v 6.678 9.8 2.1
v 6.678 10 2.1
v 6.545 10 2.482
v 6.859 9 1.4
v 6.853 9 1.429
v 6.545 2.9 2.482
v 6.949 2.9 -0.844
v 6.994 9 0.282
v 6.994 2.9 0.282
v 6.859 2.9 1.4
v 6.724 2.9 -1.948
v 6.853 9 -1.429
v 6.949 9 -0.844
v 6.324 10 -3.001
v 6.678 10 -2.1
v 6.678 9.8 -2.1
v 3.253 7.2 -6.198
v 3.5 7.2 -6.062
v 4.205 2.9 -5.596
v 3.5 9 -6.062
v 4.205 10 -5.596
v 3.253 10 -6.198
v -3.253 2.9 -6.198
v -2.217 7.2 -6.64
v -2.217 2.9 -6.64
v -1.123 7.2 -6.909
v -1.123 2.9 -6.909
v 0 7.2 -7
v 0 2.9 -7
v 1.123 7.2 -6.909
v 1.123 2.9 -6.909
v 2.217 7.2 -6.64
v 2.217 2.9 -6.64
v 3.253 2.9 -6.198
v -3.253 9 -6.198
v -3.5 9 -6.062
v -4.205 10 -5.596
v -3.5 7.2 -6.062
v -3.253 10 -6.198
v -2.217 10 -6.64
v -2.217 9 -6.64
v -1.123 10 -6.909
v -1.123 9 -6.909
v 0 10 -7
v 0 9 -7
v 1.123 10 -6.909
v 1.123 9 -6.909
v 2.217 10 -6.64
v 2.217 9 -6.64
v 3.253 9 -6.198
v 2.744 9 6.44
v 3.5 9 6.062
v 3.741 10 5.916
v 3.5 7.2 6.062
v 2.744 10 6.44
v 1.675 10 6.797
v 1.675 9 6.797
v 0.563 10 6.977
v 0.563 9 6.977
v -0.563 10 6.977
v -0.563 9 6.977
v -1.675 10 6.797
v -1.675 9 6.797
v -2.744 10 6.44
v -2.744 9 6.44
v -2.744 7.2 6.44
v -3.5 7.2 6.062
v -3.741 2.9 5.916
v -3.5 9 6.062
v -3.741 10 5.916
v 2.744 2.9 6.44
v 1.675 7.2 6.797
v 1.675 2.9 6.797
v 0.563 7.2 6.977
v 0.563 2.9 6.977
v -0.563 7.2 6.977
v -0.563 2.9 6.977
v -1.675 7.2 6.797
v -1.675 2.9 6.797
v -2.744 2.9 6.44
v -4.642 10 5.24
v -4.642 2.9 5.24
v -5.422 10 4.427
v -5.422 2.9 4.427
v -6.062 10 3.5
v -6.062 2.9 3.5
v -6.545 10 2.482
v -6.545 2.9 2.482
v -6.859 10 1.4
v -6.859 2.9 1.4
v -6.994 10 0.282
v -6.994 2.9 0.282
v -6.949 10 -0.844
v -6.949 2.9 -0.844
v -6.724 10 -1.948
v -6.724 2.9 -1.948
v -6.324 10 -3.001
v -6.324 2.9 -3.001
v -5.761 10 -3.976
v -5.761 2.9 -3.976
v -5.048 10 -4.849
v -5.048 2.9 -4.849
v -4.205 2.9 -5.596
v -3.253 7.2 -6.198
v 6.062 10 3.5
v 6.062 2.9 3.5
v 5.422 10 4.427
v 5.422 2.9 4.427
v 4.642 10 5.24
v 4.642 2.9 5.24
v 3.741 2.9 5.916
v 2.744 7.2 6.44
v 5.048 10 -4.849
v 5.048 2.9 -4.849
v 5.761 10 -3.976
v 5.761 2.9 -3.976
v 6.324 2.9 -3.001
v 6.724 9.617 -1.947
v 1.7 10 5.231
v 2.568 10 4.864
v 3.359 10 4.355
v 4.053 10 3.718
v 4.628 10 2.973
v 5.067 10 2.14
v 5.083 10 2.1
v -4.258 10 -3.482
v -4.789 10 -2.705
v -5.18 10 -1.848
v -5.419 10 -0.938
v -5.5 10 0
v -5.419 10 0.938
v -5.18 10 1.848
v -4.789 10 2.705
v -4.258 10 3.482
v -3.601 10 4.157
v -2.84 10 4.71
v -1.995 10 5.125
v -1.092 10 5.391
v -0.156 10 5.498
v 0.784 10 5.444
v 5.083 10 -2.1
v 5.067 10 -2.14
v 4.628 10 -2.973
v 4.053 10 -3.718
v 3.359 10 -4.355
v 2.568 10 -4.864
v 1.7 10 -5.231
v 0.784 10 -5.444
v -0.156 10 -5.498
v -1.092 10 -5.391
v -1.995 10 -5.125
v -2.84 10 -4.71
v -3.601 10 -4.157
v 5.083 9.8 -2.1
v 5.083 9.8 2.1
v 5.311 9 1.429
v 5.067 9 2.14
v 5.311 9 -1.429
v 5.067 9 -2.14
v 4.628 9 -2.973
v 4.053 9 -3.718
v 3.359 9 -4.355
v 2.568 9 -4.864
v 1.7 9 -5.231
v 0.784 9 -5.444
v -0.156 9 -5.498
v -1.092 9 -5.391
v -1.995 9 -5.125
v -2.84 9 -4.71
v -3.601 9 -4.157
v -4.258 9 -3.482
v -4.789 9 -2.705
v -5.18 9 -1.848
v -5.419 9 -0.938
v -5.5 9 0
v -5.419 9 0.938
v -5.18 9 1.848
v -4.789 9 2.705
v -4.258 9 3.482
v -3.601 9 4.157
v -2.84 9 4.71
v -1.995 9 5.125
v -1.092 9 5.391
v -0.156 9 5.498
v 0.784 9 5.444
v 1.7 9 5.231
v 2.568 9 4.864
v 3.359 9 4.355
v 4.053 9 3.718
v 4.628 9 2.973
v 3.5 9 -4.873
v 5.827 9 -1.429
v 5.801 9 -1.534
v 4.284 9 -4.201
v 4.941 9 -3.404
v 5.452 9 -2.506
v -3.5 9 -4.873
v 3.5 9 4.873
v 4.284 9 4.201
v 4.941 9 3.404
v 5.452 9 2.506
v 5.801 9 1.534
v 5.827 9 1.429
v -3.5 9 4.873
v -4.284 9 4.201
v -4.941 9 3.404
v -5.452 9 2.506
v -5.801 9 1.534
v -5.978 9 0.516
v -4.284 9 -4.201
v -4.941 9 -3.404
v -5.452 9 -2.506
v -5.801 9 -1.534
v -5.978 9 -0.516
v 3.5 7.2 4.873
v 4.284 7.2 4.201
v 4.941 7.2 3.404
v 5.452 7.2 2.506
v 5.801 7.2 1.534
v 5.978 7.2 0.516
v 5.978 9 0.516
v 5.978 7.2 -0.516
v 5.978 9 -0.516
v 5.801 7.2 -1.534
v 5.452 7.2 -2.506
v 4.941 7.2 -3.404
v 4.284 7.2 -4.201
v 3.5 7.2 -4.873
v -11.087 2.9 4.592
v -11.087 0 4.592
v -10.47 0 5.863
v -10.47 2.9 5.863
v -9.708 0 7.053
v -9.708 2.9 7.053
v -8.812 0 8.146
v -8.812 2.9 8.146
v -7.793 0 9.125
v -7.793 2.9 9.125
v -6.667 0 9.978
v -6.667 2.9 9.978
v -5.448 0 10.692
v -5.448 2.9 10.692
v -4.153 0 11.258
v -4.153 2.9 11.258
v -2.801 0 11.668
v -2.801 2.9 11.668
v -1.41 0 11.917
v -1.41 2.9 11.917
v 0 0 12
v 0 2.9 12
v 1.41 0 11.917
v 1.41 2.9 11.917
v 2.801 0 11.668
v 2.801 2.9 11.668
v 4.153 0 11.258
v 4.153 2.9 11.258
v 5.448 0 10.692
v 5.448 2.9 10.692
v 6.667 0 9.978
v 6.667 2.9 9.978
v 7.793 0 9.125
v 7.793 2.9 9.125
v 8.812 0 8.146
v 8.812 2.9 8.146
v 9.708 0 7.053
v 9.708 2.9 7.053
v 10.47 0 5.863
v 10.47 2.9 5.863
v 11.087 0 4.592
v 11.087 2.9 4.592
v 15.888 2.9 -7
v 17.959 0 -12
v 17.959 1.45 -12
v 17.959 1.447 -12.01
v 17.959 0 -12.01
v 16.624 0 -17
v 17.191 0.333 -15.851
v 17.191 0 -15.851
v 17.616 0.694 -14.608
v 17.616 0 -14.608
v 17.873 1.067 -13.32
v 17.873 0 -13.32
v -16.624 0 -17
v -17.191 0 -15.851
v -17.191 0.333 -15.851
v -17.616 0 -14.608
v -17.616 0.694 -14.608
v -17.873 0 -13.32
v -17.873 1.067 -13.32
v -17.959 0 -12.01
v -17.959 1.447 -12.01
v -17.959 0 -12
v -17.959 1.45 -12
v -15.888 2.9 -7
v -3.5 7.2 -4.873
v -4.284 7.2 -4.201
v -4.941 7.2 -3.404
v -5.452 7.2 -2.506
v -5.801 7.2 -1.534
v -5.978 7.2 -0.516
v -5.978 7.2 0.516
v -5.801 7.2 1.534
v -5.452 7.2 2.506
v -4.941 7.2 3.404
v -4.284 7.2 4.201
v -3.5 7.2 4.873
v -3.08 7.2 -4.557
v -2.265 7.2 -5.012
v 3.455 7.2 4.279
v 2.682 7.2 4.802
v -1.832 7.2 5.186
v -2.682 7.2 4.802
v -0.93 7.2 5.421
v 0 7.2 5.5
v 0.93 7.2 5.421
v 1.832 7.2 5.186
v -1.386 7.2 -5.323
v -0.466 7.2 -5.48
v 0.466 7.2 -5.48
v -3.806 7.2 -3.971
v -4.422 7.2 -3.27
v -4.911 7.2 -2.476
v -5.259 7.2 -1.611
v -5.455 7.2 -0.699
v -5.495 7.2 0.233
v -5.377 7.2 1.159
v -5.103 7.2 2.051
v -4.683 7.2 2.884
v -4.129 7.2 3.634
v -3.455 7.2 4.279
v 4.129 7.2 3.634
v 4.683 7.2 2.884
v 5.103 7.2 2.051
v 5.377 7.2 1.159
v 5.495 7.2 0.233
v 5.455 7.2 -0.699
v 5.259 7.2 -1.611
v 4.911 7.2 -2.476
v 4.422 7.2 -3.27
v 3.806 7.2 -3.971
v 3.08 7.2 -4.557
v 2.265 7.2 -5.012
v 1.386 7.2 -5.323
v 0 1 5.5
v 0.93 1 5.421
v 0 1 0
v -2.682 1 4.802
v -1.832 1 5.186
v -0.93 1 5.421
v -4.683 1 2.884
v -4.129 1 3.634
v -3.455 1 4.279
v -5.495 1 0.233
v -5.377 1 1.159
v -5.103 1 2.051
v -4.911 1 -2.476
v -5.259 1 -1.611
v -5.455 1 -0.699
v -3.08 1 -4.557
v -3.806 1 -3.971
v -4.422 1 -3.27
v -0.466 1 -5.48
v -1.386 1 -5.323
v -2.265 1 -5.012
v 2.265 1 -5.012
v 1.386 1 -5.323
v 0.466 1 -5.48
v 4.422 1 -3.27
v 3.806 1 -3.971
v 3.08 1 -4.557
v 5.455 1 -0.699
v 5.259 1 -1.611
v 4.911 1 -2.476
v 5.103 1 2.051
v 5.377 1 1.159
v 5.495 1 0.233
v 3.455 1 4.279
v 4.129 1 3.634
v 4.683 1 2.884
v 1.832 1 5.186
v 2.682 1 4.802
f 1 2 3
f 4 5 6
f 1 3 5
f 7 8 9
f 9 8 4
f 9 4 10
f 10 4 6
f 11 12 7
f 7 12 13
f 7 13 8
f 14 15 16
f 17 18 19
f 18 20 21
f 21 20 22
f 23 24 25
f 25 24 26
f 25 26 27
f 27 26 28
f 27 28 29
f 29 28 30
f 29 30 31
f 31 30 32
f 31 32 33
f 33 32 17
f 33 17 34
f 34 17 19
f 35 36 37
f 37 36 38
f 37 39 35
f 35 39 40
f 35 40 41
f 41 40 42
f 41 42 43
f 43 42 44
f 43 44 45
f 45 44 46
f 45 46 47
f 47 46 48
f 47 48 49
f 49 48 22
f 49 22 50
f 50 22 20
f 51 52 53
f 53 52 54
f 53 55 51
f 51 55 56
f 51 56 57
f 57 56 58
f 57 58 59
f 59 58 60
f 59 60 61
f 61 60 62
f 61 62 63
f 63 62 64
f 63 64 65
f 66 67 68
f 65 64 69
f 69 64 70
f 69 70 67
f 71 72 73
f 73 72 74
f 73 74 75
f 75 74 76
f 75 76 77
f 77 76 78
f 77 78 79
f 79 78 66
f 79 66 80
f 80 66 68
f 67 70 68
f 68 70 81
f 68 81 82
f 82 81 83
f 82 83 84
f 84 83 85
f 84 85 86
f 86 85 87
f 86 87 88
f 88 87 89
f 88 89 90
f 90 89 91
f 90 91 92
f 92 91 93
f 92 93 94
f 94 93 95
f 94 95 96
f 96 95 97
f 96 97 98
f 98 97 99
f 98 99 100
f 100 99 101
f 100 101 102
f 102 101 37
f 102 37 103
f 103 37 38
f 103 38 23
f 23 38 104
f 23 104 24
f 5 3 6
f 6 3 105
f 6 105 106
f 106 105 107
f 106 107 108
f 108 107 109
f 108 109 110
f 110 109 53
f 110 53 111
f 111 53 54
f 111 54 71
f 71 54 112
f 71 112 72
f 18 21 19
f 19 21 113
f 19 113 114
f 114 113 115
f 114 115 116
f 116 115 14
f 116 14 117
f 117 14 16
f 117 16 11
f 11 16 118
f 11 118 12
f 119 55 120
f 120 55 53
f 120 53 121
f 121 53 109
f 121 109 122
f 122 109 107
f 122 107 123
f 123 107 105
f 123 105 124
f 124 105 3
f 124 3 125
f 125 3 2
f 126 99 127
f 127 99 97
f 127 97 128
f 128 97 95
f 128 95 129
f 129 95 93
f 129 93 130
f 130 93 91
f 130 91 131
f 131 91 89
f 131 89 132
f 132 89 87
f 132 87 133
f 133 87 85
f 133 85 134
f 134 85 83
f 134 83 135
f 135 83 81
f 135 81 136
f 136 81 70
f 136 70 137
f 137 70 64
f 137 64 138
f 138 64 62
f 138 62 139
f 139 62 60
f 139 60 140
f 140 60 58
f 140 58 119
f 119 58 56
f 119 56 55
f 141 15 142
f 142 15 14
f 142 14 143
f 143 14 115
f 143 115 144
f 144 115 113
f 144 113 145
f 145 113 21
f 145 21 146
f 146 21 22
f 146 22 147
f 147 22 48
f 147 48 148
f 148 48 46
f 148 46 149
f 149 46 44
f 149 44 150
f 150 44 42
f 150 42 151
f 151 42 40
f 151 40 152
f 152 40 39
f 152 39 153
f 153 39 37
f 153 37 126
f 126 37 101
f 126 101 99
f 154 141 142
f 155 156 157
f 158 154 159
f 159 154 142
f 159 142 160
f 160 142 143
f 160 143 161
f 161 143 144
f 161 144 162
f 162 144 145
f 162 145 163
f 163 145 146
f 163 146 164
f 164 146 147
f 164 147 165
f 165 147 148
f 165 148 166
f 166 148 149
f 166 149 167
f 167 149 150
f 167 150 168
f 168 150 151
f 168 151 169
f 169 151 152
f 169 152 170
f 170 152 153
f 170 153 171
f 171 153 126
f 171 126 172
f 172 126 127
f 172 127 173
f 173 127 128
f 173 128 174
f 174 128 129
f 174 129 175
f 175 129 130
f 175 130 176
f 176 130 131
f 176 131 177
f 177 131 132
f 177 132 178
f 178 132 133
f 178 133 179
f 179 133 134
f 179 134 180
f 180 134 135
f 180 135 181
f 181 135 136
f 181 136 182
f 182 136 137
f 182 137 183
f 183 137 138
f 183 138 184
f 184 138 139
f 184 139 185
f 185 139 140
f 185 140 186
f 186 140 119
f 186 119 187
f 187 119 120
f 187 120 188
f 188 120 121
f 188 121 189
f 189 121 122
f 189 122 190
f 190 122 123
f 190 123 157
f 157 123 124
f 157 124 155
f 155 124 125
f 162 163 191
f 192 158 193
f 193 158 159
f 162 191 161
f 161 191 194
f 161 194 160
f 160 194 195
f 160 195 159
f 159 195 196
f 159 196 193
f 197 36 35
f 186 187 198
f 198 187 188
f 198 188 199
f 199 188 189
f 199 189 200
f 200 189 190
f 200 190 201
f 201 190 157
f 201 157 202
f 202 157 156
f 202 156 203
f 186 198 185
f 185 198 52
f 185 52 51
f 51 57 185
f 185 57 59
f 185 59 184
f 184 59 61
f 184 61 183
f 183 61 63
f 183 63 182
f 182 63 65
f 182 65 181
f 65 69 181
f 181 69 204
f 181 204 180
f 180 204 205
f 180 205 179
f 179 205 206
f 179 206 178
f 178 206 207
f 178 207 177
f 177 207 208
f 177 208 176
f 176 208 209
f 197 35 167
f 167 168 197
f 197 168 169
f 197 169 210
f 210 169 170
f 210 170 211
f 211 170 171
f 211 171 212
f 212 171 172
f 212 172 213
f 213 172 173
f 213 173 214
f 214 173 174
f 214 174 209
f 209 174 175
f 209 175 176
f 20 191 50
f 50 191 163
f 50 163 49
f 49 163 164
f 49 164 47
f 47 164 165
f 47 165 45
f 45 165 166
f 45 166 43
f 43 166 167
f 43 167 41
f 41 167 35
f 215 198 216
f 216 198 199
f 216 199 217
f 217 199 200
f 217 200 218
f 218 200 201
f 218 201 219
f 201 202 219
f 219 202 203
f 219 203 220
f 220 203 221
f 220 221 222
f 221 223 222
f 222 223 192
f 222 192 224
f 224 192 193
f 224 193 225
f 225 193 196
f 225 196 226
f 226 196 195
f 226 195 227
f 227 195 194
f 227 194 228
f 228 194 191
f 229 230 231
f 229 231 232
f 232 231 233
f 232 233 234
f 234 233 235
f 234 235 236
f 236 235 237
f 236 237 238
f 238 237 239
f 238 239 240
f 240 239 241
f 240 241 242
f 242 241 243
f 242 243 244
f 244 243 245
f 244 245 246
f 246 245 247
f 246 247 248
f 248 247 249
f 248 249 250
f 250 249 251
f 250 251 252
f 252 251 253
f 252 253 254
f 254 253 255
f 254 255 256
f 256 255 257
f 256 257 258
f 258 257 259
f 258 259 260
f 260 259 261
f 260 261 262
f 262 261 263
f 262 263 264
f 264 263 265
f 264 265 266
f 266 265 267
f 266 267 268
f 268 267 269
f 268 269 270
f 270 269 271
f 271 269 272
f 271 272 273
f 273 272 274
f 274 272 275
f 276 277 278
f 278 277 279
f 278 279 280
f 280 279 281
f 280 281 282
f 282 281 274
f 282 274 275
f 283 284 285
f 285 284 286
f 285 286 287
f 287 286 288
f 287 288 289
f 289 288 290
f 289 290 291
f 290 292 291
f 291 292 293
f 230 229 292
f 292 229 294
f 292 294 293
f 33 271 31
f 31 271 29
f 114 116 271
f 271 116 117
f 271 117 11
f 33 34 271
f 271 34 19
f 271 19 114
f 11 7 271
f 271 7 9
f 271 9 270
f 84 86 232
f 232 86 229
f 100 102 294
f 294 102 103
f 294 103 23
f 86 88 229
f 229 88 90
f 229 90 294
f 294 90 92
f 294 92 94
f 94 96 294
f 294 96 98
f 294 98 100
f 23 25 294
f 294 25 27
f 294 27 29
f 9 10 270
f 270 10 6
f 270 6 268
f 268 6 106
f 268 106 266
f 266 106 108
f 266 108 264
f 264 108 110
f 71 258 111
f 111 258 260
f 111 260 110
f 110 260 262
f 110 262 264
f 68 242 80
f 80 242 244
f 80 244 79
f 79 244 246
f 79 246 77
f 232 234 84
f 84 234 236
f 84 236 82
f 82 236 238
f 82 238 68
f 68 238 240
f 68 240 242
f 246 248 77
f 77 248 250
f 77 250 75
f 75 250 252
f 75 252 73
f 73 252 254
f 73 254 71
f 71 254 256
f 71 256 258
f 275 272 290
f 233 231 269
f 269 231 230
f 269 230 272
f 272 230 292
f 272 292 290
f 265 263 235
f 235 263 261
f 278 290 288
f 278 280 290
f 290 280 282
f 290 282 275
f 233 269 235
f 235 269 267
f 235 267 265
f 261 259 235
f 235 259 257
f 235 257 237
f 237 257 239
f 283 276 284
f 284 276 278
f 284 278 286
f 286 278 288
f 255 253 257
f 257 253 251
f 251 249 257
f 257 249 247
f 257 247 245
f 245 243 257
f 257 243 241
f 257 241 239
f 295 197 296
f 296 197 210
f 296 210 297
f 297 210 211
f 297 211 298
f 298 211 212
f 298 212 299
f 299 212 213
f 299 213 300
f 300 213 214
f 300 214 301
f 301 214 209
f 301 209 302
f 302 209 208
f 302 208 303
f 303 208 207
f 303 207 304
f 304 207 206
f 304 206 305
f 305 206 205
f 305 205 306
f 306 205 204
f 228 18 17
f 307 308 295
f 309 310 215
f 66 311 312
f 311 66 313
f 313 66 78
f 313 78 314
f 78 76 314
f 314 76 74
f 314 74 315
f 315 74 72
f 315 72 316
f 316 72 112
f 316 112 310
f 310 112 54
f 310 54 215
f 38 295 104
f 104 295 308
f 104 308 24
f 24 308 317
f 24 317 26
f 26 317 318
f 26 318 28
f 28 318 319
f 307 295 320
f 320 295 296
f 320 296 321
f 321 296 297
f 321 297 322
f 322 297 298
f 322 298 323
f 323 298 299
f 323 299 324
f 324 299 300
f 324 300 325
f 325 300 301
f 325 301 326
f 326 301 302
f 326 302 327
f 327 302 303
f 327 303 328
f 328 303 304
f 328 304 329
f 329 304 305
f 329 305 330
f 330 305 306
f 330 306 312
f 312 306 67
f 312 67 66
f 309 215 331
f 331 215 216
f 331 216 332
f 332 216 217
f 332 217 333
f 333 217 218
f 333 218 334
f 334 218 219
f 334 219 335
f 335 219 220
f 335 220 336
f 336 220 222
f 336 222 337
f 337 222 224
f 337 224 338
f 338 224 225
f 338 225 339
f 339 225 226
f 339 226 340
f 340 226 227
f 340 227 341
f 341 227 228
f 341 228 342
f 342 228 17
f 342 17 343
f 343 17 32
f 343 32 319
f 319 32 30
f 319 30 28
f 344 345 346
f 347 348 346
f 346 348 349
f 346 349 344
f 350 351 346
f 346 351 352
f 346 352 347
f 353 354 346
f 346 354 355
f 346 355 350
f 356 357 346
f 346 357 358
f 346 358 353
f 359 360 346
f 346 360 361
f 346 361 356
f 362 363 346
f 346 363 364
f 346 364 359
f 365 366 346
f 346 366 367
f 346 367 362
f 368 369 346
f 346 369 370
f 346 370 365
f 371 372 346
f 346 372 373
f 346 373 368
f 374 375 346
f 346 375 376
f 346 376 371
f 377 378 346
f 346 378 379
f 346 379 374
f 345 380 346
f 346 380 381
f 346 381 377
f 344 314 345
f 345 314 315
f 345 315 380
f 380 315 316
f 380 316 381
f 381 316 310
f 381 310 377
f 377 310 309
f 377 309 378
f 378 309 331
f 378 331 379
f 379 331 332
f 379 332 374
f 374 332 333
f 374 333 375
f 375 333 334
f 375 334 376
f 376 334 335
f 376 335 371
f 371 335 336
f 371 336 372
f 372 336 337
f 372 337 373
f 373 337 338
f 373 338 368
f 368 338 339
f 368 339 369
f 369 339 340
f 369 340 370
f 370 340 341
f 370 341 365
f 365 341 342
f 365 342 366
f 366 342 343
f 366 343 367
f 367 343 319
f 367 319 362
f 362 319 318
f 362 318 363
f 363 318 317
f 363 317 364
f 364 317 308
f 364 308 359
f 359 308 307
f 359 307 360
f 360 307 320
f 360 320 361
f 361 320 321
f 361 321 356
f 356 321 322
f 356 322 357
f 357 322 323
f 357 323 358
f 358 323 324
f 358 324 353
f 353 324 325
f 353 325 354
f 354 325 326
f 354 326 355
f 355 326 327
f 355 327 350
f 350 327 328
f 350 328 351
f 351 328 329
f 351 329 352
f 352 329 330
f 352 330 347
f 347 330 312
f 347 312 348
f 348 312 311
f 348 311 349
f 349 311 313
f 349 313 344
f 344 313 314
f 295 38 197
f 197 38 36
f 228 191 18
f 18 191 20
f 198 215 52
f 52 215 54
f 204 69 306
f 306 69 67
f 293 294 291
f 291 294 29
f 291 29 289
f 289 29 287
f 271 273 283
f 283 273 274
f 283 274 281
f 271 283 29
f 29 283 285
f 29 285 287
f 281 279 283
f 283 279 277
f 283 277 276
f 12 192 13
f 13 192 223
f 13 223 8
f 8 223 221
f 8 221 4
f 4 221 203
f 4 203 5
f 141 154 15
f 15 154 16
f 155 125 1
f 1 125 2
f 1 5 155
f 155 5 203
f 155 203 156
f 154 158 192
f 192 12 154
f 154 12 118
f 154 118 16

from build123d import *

# Parameters (mm, degrees)
BOSS_EXTRUDE1_DEPTH      = 2.9
SKETCH1_3_R              = 7
BOSS_EXTRUDE2_DEPTH      = 10
SKETCH7_R                = 5.5
CUT_EXTRUDE10_DEPTH      = 9
SKETCH8_R                = 6
SKETCH8_R_2              = 5.5
CUT_EXTRUDE11_DEPTH      = 1.8
CUT_EXTRUDE12_DEPTH      = 27.674619931
CUT_EXTRUDE12_DEPTH_BACK = 27.674619931
SKETCH9_W                = 7
SKETCH9_H                = 1.8
CUT_EXTRUDE13_DEPTH      = 27.674619931
CUT_EXTRUDE13_DEPTH_BACK = 27.674619931
CUT_EXTRUDE14_DEPTH      = 10


with BuildPart() as part:
    # Sketch1 → Boss-Extrude1 (new body)
    with BuildSketch(Plane(origin=(0, 0, 0), x_dir=(1, 0, 0), z_dir=(0, 1, 0))):
        with BuildLine():
            Line((-17.959269152, 12), (-11.086554257, -4.59220151))
            ThreePointArc((-11.086554257, -4.59220151), (1.96e-07, -12), (11.086554407, -4.592201147))
            Line((11.086554407, -4.592201147), (17.959269152, 12))
            Line((17.959269152, 12), (17.959269152, 12.01))
            ThreePointArc((17.959269152, 12.01), (17.619614776, 14.59281423), (16.623747761, 17))
            Line((16.623747761, 17), (-16.623747761, 17))
            ThreePointArc((-16.623747761, 17), (-17.619614776, 14.59281423), (-17.959269152, 12.01))
            Line((-17.959269152, 12.01), (-17.959269152, 12))
        make_face()
    extrude(amount=BOSS_EXTRUDE1_DEPTH)

    # Sketch1<3> → Boss-Extrude2 (add)
    with BuildSketch(Plane(origin=(0, 0, 0), x_dir=(1, 0, 0), z_dir=(0, 1, 0))):
        Circle(SKETCH1_3_R)
    extrude(amount=BOSS_EXTRUDE2_DEPTH)

    # Sketch7 → Cut-Extrude10 (cut)
    with BuildSketch(Plane(origin=(0, 10, 0), x_dir=(1, 0, 0), z_dir=(0, 1, 0))):
        Circle(SKETCH7_R)
    extrude(amount=-CUT_EXTRUDE10_DEPTH, mode=Mode.SUBTRACT)

    # Sketch8 → Cut-Extrude11 (cut)
    with BuildSketch(Plane(origin=(0, 9, 0), x_dir=(1, 0, 0), z_dir=(0, 1, 0))):
        Circle(SKETCH8_R)
        Circle(SKETCH8_R_2, mode=Mode.SUBTRACT)
    extrude(amount=-CUT_EXTRUDE11_DEPTH, mode=Mode.SUBTRACT)

    # Sketch9 → Cut-Extrude12 (cut, two sides: drawn at the far end of the back side and taken through both)
    with BuildSketch(Plane.XY.offset(-CUT_EXTRUDE12_DEPTH_BACK)):
        with Locations((0, 8.1)):
            Rectangle(SKETCH9_W, SKETCH9_H)
    extrude(amount=CUT_EXTRUDE12_DEPTH + CUT_EXTRUDE12_DEPTH_BACK, mode=Mode.SUBTRACT)

    # Sketch10 → Cut-Extrude13 (cut, two sides: drawn at the far end of the back side and taken through both)
    with BuildSketch(Plane(origin=(0, 0, 0), x_dir=(0, 0, -1), z_dir=(1, 0, 0)).offset(-CUT_EXTRUDE13_DEPTH_BACK)):
        Polygon((17, 0), (7, 2.9), (17, 2.9), align=None)
    extrude(amount=CUT_EXTRUDE13_DEPTH + CUT_EXTRUDE13_DEPTH_BACK, mode=Mode.SUBTRACT)

    # Sketch11 → Cut-Extrude14 (cut)
    with BuildSketch(Plane(origin=(0, 0, 0), x_dir=(0, 0, -1), z_dir=(1, 0, 0))):
        Polygon((-2.1, 10.6), (2.1, 10.6), (2.1, 9.8), (1.428720295, 9), (-1.428720295, 9), (-2.1, 9.8), align=None)
    extrude(amount=CUT_EXTRUDE14_DEPTH, mode=Mode.SUBTRACT)


solid = part.part
